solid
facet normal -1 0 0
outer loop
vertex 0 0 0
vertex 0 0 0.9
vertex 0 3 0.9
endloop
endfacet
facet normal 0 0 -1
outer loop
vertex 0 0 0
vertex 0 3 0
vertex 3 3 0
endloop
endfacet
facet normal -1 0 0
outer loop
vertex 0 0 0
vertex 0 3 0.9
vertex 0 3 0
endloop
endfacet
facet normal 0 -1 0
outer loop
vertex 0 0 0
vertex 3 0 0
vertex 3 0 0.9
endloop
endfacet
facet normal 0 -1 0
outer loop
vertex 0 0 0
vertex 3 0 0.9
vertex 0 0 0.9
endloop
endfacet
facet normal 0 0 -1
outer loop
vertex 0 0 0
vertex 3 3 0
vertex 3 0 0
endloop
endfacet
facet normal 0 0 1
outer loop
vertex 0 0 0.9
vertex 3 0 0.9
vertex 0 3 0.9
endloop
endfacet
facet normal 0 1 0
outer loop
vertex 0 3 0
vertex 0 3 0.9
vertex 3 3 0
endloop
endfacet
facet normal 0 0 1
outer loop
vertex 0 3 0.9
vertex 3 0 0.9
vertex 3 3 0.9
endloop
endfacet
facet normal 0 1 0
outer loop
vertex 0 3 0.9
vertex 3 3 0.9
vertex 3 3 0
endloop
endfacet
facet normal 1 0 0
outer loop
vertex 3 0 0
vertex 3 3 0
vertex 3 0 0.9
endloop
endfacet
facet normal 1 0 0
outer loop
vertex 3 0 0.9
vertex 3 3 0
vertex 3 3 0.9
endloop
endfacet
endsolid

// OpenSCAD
/* Warning, this is a very basic generator with a lot of approximation 
input data : [QFN, P9X, 3x3x0.9mm, 16, , A, C04-00142A]
generated by com.zoubworld.electronics.cad.model3d.Basic
Date : Sun Feb 15 10:50:48 CET 2026
*/

//body
color("black")
translate([0,0,0])
cube([3.0,3.0,0.9], center=false);
